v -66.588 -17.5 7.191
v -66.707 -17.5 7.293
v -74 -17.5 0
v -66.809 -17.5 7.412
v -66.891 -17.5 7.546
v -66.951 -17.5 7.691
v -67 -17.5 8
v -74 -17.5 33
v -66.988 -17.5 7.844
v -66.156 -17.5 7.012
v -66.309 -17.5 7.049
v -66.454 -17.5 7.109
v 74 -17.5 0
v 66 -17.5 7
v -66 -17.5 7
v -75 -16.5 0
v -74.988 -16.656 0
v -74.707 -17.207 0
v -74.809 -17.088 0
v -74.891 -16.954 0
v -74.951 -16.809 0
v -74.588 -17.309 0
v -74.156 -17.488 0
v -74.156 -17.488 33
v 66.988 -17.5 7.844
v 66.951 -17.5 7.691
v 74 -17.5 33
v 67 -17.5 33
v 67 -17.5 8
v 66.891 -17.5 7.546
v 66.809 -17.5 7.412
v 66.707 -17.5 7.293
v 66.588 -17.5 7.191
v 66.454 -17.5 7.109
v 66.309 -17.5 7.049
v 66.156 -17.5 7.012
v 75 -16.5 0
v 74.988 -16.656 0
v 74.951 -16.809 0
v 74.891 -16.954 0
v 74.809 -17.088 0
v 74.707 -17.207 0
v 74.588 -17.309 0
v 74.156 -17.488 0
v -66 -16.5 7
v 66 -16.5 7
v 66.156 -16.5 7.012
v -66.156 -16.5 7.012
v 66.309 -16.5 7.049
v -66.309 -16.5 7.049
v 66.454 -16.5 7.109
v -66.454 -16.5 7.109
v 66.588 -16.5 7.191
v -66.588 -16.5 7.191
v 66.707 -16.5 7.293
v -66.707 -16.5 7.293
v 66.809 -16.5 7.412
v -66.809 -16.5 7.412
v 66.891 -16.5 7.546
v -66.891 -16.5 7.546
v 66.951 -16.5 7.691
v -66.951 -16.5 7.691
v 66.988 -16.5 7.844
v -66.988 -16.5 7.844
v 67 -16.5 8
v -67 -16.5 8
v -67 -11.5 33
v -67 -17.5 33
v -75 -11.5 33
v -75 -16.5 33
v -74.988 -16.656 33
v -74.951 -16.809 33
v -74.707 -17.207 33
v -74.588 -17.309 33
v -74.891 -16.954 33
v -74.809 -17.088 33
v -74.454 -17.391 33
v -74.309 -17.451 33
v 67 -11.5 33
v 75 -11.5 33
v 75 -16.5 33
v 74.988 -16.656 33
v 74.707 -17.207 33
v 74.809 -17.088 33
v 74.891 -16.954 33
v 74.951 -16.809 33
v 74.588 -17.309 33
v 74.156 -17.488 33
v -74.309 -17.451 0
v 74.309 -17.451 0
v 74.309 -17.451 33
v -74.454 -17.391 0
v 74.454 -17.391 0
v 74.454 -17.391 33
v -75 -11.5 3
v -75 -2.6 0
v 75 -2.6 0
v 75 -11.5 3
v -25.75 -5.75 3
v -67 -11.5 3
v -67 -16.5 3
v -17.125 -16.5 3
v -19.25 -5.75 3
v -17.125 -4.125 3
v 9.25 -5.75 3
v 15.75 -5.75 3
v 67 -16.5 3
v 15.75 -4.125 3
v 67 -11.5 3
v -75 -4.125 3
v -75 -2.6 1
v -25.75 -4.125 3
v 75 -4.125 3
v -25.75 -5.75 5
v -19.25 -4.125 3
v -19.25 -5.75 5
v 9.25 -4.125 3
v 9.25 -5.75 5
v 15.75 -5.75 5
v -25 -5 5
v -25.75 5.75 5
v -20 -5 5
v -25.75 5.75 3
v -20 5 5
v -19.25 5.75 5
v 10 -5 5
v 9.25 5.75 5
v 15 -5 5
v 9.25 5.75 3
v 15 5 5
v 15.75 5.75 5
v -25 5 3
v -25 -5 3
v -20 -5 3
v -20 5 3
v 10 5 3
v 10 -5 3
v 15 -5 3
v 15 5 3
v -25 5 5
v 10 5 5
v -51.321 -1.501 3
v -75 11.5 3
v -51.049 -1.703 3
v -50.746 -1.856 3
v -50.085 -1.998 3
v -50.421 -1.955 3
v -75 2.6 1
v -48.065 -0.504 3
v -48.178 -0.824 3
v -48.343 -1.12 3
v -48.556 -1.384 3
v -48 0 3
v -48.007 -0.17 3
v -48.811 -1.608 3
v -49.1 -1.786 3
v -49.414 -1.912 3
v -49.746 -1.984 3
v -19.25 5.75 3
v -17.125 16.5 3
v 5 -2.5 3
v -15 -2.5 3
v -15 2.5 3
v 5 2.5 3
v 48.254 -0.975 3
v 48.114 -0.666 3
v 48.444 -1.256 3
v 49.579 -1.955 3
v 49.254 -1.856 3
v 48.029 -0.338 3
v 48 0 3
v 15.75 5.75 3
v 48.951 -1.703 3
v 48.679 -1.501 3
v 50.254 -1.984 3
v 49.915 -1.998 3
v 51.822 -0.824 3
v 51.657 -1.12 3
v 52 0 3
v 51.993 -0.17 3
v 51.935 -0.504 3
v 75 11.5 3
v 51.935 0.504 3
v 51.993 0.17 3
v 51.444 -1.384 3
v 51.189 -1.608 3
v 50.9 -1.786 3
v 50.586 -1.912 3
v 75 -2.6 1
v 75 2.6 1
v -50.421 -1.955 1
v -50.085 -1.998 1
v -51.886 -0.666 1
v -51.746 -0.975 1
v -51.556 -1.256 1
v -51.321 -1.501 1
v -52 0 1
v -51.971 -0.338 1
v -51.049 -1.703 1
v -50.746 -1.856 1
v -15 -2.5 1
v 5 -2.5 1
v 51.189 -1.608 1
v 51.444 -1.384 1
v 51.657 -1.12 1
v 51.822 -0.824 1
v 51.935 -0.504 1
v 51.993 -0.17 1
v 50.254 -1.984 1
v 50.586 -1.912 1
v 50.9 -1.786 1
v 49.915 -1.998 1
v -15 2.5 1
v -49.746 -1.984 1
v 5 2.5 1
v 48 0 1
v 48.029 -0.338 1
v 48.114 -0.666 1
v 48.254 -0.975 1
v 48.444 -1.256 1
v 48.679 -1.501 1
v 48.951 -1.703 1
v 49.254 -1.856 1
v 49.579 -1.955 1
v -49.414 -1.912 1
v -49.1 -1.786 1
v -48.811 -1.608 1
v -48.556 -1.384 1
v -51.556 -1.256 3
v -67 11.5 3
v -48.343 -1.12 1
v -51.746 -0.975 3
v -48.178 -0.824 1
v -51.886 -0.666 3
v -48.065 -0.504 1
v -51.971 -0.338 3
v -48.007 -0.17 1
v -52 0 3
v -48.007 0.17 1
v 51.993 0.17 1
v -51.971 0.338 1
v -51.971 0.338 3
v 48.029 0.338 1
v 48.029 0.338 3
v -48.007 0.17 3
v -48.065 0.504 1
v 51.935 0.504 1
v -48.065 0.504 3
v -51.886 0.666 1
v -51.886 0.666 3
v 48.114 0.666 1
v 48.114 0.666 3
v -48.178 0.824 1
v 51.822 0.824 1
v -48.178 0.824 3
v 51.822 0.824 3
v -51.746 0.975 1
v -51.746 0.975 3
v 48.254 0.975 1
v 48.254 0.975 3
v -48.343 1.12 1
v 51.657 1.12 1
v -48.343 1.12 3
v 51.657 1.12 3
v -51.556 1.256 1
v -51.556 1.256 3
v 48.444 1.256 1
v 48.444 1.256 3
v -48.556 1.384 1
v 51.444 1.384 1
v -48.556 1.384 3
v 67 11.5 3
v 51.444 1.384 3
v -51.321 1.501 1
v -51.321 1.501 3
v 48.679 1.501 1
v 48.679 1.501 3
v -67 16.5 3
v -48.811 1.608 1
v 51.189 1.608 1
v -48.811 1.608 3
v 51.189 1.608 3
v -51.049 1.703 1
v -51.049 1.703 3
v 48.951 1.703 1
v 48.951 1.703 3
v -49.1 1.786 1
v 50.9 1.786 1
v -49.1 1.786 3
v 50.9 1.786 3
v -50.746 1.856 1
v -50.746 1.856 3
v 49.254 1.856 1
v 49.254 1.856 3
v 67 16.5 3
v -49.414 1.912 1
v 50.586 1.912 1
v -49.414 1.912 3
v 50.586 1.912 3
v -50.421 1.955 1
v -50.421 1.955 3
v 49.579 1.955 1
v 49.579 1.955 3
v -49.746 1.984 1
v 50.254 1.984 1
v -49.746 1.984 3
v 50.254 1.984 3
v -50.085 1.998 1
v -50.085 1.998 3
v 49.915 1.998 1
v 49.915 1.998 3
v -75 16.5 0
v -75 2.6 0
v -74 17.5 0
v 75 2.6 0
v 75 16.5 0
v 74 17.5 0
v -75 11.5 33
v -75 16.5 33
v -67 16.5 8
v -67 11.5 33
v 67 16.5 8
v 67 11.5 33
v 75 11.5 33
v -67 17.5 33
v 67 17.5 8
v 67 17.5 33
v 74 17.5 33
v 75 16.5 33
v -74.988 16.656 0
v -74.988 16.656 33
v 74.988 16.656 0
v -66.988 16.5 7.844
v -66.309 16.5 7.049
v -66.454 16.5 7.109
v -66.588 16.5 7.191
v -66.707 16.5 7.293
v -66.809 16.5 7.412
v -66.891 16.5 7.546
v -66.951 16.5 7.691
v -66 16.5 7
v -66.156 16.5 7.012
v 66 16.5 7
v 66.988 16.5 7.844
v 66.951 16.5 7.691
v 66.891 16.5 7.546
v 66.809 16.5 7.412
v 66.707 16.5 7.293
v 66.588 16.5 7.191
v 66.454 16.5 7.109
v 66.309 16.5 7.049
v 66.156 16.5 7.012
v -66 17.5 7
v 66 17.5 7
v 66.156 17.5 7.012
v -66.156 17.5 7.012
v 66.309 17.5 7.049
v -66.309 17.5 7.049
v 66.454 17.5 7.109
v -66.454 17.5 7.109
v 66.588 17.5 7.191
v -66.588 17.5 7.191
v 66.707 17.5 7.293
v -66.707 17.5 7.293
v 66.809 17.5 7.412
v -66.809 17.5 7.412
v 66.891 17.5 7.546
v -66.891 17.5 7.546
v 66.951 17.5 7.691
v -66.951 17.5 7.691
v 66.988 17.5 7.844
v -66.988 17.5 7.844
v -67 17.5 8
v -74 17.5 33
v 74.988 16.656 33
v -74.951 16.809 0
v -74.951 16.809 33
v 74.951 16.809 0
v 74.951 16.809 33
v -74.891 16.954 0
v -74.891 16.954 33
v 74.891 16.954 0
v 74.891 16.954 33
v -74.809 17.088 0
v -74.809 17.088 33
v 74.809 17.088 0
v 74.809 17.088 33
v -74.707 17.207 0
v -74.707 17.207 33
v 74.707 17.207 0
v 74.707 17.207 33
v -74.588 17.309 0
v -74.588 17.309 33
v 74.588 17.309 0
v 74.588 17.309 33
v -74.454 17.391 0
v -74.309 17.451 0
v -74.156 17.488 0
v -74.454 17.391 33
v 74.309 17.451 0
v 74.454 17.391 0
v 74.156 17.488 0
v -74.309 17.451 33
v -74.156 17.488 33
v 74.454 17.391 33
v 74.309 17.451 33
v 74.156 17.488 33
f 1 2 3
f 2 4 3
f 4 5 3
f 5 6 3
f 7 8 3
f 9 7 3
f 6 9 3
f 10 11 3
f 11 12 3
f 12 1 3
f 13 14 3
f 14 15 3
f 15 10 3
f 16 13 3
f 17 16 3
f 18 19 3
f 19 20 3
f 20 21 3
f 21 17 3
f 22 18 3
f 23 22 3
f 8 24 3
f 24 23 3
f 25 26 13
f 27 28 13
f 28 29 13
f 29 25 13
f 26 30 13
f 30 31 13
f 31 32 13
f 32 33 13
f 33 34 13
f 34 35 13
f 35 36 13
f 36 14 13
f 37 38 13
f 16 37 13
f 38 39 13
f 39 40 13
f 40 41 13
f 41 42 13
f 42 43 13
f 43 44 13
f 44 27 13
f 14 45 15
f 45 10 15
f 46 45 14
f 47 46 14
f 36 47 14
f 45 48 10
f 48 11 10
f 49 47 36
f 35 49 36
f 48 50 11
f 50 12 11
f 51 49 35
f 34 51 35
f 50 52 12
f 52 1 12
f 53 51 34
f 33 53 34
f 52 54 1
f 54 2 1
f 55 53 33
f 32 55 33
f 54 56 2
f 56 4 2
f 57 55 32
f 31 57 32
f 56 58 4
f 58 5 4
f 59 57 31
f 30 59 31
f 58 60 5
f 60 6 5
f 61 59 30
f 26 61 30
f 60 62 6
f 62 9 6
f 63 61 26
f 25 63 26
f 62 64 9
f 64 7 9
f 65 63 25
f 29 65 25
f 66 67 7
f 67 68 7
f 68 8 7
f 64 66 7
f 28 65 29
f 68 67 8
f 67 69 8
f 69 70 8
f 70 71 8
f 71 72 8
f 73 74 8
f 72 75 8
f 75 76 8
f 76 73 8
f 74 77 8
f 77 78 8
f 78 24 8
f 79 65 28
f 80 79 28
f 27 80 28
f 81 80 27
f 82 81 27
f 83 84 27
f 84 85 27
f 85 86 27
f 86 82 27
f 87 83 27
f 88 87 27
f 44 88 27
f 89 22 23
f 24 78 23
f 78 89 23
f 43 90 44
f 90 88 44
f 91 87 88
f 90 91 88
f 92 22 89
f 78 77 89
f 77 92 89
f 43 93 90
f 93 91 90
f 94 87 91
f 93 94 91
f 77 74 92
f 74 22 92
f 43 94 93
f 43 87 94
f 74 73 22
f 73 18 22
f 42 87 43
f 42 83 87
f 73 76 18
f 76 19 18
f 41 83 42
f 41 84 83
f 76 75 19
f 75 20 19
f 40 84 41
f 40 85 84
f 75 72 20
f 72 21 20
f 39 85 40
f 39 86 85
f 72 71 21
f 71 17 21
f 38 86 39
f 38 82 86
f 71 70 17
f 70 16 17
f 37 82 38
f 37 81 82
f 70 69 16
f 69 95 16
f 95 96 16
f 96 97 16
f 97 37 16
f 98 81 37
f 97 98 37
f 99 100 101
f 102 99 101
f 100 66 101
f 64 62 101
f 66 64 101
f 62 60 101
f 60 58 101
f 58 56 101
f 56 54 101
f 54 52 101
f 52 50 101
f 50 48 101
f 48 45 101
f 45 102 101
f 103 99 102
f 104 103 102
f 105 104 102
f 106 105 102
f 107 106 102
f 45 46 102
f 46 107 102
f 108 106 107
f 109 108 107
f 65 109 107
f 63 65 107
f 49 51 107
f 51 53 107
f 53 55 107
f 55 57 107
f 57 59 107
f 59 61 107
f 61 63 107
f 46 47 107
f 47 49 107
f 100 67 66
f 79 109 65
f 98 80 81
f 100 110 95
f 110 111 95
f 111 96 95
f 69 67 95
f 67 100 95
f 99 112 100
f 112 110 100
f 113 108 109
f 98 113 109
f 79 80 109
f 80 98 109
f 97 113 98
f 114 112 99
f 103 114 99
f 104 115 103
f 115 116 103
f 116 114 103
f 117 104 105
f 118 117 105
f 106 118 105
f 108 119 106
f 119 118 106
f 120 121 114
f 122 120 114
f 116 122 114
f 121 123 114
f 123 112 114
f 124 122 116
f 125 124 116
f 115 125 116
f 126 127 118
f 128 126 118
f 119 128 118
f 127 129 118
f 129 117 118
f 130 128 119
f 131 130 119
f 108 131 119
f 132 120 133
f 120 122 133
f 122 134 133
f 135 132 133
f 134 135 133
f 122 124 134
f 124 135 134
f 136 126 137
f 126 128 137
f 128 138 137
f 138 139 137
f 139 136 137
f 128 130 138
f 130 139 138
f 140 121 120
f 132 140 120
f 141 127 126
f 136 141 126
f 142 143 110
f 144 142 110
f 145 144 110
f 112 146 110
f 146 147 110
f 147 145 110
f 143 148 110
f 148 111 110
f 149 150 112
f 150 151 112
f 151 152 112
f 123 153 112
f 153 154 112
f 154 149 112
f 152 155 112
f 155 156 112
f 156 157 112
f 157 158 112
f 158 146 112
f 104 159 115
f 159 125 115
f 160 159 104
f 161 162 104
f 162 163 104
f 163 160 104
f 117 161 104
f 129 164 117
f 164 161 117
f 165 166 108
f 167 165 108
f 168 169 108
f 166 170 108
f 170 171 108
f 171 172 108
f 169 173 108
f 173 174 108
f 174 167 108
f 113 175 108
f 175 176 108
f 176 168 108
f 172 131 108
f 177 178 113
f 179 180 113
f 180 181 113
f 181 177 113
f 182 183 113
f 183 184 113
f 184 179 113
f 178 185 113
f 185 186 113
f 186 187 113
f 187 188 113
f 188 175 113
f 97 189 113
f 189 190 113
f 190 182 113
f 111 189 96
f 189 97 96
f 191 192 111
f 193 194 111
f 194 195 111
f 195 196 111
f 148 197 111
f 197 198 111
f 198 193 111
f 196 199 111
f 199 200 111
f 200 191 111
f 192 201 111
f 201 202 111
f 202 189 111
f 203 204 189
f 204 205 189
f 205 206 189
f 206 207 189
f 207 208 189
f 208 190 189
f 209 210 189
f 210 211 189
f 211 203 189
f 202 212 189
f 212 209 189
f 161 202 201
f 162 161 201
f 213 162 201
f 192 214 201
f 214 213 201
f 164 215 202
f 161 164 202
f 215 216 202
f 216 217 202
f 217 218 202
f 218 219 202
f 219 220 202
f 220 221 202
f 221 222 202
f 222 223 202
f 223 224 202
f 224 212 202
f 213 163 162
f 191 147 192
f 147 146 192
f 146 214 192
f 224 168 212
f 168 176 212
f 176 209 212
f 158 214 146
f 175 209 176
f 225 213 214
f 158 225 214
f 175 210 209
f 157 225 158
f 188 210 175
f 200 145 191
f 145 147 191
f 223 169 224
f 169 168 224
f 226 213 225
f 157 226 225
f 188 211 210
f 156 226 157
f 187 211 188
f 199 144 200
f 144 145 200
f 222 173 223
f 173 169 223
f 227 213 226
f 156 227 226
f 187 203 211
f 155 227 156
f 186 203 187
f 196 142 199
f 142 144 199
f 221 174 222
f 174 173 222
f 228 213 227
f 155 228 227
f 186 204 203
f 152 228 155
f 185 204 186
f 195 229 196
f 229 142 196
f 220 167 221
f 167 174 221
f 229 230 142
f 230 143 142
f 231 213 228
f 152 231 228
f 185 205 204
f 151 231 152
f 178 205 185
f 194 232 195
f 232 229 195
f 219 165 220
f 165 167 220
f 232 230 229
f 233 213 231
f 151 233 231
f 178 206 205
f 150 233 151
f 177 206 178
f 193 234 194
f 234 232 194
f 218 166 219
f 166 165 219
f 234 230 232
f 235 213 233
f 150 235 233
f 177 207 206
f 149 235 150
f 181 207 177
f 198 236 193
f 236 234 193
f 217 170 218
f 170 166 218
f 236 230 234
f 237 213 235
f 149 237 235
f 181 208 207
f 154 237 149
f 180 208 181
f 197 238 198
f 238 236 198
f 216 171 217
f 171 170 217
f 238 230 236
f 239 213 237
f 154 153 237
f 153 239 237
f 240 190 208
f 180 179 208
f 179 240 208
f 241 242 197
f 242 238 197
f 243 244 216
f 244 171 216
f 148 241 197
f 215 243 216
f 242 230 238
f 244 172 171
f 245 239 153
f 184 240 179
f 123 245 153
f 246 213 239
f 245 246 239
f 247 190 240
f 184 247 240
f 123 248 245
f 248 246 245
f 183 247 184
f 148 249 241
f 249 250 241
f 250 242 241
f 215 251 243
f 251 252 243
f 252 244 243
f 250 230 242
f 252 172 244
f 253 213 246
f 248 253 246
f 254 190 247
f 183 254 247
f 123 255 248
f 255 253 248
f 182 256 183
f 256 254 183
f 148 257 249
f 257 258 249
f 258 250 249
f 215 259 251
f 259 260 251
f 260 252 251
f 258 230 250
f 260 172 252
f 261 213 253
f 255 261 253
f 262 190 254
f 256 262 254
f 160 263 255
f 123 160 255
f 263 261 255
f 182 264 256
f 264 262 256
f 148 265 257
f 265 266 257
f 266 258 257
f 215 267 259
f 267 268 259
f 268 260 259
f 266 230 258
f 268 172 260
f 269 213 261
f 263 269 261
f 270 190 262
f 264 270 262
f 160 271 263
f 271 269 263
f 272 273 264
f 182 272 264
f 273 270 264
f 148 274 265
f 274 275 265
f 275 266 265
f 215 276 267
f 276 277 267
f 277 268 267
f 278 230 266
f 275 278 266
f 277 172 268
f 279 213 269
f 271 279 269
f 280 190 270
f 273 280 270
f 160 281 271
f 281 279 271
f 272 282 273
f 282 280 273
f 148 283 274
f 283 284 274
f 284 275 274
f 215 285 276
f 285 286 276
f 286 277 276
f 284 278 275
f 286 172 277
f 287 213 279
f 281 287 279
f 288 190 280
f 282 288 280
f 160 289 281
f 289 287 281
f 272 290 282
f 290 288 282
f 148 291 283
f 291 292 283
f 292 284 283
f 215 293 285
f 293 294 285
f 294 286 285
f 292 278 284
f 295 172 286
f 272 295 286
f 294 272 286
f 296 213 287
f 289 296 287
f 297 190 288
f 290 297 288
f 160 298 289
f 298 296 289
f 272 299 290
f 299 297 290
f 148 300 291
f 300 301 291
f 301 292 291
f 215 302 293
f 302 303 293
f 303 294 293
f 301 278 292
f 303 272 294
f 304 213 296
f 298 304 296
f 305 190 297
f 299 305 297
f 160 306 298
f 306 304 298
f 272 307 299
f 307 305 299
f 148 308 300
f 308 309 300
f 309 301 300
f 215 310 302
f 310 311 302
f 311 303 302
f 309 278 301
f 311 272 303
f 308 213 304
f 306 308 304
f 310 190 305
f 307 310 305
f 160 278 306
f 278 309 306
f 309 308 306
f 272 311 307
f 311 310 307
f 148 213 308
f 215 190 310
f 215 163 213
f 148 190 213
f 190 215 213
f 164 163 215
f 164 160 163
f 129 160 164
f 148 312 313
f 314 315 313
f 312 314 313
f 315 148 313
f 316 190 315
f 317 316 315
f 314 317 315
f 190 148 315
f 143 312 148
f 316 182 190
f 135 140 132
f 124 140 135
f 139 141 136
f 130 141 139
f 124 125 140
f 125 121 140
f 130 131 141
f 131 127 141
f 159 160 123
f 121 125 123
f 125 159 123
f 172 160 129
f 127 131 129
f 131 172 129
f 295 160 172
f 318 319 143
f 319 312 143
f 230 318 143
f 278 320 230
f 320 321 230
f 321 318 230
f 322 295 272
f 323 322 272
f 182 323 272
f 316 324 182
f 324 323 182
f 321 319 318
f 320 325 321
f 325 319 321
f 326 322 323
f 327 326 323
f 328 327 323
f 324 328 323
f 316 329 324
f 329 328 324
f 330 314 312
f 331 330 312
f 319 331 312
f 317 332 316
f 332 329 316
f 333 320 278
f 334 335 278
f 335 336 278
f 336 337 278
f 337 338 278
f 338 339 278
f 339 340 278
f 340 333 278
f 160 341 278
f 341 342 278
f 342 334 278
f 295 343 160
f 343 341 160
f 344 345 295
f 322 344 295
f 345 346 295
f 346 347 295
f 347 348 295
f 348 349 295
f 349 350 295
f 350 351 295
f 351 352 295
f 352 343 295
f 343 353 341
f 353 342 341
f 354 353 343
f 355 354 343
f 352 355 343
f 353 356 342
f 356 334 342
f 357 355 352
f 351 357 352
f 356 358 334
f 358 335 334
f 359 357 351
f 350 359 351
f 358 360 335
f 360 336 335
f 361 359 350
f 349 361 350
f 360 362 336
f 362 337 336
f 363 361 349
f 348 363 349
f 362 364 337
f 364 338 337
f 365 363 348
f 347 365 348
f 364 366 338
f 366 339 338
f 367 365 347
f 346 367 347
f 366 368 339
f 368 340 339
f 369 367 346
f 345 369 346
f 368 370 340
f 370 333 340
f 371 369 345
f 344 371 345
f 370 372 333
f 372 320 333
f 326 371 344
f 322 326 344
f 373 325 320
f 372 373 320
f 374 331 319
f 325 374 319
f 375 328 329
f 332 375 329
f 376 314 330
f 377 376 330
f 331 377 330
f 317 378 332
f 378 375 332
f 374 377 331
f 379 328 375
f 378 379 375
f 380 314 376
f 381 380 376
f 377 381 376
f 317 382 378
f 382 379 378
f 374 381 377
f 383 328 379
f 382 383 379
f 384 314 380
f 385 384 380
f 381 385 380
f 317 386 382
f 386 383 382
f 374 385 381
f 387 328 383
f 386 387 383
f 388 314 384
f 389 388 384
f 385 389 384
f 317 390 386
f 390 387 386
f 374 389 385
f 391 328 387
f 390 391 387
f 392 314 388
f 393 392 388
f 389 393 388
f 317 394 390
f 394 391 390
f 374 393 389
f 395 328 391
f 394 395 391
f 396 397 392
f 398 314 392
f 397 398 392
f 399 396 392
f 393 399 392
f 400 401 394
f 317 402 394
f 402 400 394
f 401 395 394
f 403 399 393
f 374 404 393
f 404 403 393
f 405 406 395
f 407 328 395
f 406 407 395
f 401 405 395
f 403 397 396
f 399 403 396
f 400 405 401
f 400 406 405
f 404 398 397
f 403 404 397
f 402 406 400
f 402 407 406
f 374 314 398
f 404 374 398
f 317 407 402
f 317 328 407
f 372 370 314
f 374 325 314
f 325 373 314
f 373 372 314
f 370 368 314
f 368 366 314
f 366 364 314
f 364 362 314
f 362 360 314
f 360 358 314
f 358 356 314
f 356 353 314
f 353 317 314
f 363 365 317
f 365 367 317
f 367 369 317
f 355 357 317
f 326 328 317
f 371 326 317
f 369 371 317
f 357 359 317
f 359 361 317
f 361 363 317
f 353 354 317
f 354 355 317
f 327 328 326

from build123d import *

# Parameters (mm, degrees)
SKICA1_W                 = 150
SKICA1_H                 = 35
P_IDAT_VYSUNUT_M2_DEPTH  = 3
SKICA2_W                 = 6.5
SKICA2_H                 = 11.5
SKICA2_W_2               = 5
SKICA2_H_2               = 10
P_IDAT_VYSUNUT_M3_DEPTH  = 2
SKICA4_W                 = 20
SKICA4_H                 = 5
ODEBRAT_VYSUNUT_M1_DEPTH = 2
SKICA5_W                 = 150
SKICA5_H                 = 5.2
ODEBRAT_VYSUNUT_M3_DEPTH = 1
SKICA7_R                 = 2
ODEBRAT_VYSUNUT_M4_DEPTH = 5
SKICA8_W                 = 8
SKICA8_H                 = 6
P_IDAT_VYSUNUT_M4_DEPTH  = 30
ZAOBLIT1_R               = 1
SKICA9_W                 = 134
SKICA9_H                 = 1
P_IDAT_VYSUNUT_M5_DEPTH  = 4
ZAOBLIT2_R               = 1


with BuildPart() as part:
    # Skica1 → Přidat vysunutím2 (new body)
    with BuildSketch(Plane.XY):
        Rectangle(SKICA1_W, SKICA1_H)
    extrude(amount=P_IDAT_VYSUNUT_M2_DEPTH)

    # Skica2 → Přidat vysunutím3 (add)
    with BuildSketch(Plane.XY.offset(3)):
        with Locations((-22.5, 0)):
            Rectangle(SKICA2_W, SKICA2_H)
        with Locations((-22.5, 0)):
            Rectangle(SKICA2_W_2, SKICA2_H_2, mode=Mode.SUBTRACT)
        with Locations((12.5, 0)):
            Rectangle(SKICA2_W, SKICA2_H)
        with Locations((12.5, 0)):
            Rectangle(SKICA2_W_2, SKICA2_H_2, mode=Mode.SUBTRACT)
    extrude(amount=P_IDAT_VYSUNUT_M3_DEPTH)

    # Skica4 → Odebrat vysunutím1 (cut)
    with BuildSketch(Plane.XY.offset(3)):
        with Locations((-5, 0)):
            Rectangle(SKICA4_W, SKICA4_H)
    extrude(amount=-ODEBRAT_VYSUNUT_M1_DEPTH, mode=Mode.SUBTRACT)

    # Skica5 → Odebrat vysunutím3 (cut)
    with BuildSketch(Plane(origin=(0, 0, 0), x_dir=(-1, 0, 0), z_dir=(0, 0, -1))):
        Rectangle(SKICA5_W, SKICA5_H)
    extrude(amount=-ODEBRAT_VYSUNUT_M3_DEPTH, mode=Mode.SUBTRACT)

    # Skica7 → Odebrat vysunutím4 (cut, through all)
    with BuildSketch(Plane(origin=(0, 0, 1), x_dir=(-1, 0, 0), z_dir=(0, 0, -1))):
        with Locations((-50, 0)):
            Circle(SKICA7_R)
        with Locations((50, 0)):
            Circle(SKICA7_R)
    extrude(amount=-ODEBRAT_VYSUNUT_M4_DEPTH, mode=Mode.SUBTRACT)

    # Skica8 → Přidat vysunutím4 (add)
    with BuildSketch(Plane.XY.offset(3)):
        with Locations((71, 14.5)):
            Rectangle(SKICA8_W, SKICA8_H)
        with Locations((71, -14.5)):
            Rectangle(SKICA8_W, SKICA8_H)
        with Locations((-71, -14.5)):
            Rectangle(SKICA8_W, SKICA8_H)
        with Locations((-71, 14.5)):
            Rectangle(SKICA8_W, SKICA8_H)
    extrude(amount=P_IDAT_VYSUNUT_M4_DEPTH)

    # Zaoblit1
    zaoblit1_edges = [part.edges().sort_by_distance(p)[0] for p in [
        (75, -17.5, 16.5),
        (75, 17.5, 16.5),
        (-75, 17.5, 16.5),
        (-75, -17.5, 16.5),
    ]]
    fillet(zaoblit1_edges, radius=ZAOBLIT1_R)

    # Skica9 → Přidat vysunutím5 (add)
    with BuildSketch(Plane.XY.offset(3)):
        with Locations((0, 17)):
            Rectangle(SKICA9_W, SKICA9_H)
        with Locations((0, -17)):
            Rectangle(SKICA9_W, SKICA9_H)
    extrude(amount=P_IDAT_VYSUNUT_M5_DEPTH)

    # Zaoblit2
    zaoblit2_edges = [part.edges().sort_by_distance(p)[0] for p in [
        (67, 17, 7),
        (-67, 17, 7),
        (-67, -17, 7),
        (67, -17, 7),
    ]]
    fillet(zaoblit2_edges, radius=ZAOBLIT2_R)


solid = part.part
